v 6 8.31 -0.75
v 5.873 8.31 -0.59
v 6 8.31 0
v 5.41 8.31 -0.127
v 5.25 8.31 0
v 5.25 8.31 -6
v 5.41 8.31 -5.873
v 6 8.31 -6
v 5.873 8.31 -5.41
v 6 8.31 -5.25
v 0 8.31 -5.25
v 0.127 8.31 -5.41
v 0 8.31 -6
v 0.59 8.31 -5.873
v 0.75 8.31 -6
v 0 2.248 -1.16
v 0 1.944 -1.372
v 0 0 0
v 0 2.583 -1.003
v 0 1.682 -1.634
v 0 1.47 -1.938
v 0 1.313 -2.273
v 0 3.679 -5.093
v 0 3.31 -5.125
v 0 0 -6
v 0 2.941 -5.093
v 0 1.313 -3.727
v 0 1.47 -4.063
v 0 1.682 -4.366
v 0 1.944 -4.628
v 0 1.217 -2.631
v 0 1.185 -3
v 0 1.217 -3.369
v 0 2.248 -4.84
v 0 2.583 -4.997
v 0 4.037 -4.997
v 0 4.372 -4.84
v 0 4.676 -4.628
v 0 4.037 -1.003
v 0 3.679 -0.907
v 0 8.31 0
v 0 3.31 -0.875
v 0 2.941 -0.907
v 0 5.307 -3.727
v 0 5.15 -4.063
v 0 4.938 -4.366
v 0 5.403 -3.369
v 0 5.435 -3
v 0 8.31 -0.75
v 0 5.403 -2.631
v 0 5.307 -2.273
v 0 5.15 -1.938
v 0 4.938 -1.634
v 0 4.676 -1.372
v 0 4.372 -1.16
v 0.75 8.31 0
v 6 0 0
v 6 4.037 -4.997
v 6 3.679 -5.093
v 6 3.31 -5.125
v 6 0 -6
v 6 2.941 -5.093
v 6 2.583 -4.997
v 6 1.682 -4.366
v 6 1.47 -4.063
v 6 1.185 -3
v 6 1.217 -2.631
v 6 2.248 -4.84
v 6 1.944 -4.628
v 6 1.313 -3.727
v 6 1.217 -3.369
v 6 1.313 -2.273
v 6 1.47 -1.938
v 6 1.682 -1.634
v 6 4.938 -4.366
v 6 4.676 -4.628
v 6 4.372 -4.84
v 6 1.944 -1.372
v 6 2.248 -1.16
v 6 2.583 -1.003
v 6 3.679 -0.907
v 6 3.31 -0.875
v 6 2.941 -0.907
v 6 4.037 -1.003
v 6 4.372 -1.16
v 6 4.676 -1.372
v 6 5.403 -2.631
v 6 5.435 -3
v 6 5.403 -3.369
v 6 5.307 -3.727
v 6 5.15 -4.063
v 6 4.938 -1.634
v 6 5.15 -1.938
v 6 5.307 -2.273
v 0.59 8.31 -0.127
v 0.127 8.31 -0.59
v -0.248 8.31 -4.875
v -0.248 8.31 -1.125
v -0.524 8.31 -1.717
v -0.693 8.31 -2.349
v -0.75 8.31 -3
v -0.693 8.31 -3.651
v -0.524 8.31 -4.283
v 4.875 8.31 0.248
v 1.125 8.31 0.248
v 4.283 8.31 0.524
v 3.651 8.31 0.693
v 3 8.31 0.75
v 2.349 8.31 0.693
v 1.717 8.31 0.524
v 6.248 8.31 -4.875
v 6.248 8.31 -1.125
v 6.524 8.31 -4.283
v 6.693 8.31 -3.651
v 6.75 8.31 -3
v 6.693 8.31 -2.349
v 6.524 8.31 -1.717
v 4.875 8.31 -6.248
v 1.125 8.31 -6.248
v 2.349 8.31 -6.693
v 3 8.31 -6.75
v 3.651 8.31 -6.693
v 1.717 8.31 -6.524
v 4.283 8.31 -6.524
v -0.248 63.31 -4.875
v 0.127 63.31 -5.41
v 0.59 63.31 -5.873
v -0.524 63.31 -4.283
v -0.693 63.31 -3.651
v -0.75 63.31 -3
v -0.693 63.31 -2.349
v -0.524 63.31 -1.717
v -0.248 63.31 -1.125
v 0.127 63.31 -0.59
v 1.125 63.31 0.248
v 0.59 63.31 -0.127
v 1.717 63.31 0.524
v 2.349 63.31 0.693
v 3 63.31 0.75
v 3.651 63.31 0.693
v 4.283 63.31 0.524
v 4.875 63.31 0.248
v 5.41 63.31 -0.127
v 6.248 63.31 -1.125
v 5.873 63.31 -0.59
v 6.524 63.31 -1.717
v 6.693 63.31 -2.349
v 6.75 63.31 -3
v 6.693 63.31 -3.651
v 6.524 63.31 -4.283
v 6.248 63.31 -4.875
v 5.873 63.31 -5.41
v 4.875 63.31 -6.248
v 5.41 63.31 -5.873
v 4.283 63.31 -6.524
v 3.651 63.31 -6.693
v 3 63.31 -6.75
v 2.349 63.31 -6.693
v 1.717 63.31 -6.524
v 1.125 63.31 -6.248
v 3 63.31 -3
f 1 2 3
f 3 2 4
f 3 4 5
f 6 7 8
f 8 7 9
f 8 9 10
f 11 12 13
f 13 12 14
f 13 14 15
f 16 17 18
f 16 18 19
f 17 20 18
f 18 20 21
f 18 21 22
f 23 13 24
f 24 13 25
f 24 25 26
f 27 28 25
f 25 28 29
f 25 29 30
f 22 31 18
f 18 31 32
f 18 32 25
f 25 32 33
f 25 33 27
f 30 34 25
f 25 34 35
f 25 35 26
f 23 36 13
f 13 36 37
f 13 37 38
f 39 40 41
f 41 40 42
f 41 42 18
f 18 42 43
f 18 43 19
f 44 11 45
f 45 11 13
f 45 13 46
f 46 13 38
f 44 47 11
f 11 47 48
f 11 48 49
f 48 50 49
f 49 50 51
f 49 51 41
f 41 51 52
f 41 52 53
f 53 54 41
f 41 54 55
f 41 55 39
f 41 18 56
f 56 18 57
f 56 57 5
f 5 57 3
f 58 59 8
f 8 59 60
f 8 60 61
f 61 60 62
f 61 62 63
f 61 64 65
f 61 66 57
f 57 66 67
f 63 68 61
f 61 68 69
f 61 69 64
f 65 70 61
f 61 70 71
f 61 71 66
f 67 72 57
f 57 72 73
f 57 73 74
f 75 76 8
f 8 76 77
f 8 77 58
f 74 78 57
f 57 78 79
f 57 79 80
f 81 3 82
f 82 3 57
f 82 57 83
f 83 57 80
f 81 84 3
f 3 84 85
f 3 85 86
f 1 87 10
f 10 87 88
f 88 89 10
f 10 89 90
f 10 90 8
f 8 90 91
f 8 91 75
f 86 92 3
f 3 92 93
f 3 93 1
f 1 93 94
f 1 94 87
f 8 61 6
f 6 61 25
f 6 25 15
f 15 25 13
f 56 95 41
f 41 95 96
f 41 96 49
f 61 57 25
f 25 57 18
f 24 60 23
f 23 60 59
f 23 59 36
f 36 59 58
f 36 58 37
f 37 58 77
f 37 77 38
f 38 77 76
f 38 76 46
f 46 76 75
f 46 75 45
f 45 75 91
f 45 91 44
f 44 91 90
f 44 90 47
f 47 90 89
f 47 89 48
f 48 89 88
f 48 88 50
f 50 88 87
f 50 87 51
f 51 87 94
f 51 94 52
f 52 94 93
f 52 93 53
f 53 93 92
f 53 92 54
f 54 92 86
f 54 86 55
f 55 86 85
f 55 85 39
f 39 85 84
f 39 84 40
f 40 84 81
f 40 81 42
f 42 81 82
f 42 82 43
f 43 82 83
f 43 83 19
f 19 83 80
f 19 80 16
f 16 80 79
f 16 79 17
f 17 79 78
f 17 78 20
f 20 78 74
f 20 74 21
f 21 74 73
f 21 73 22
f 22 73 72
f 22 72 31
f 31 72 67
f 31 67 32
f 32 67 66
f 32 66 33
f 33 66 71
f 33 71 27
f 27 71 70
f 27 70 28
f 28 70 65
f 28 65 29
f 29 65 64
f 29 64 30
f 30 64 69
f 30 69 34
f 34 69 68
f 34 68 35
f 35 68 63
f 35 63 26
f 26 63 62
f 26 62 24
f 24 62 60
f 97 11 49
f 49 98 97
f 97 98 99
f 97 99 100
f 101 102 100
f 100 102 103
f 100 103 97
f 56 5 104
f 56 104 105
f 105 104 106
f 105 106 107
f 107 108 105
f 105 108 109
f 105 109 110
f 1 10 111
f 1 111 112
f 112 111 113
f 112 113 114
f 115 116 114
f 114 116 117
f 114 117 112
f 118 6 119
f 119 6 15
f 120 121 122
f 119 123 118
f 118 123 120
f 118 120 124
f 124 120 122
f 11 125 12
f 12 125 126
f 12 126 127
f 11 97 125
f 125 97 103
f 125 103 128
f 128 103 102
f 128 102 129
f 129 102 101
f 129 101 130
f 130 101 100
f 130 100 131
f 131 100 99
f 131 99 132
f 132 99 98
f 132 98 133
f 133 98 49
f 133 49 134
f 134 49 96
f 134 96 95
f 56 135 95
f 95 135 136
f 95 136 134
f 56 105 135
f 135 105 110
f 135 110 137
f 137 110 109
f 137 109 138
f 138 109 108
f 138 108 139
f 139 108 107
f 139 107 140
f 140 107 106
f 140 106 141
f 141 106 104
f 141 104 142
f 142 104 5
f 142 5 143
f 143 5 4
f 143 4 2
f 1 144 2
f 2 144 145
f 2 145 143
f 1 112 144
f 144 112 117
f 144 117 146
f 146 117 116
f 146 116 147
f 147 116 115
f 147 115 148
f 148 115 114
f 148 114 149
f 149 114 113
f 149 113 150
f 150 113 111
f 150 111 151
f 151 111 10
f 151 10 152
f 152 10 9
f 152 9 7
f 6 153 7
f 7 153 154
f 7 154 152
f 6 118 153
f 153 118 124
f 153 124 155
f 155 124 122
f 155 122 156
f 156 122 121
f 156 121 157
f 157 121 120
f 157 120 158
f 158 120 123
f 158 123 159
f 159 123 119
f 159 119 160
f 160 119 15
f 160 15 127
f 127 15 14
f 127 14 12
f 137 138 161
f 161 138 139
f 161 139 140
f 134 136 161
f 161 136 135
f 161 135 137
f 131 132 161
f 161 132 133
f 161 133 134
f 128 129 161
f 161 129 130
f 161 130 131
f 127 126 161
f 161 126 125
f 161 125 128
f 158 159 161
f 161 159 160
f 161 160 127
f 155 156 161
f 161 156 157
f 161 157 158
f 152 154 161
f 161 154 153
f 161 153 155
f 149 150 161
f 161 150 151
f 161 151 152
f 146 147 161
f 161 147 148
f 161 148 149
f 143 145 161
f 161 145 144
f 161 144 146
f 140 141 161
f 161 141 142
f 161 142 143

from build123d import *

# Parameters (mm, degrees)
SKETCH1_W           = 6
SKETCH1_H           = 6
BOSS_EXTRUDE1_DEPTH = 8.31
SKETCH2_R           = 2.125
CUT_EXTRUDE1_DEPTH  = 10
SKETCH3_R           = 3.75
BOSS_EXTRUDE2_DEPTH = 55


with BuildPart() as part:
    # Sketch1 → Boss-Extrude1 (new body)
    with BuildSketch(Plane(origin=(0, 0, 0), x_dir=(1, 0, 0), z_dir=(0, 1, 0))):
        with Locations((3, 3)):
            Rectangle(SKETCH1_W, SKETCH1_H)
    extrude(amount=BOSS_EXTRUDE1_DEPTH)

    # Sketch2 → Cut-Extrude1 (cut)
    with BuildSketch(Plane(origin=(6, 0, 0), x_dir=(0, 0, -1), z_dir=(1, 0, 0))):
        with Locations((3, 3.31)):
            Circle(SKETCH2_R)
    extrude(amount=-CUT_EXTRUDE1_DEPTH, mode=Mode.SUBTRACT)

    # Sketch3 → Boss-Extrude2 (add)
    with BuildSketch(Plane(origin=(0, 8.31, 0), x_dir=(1, 0, 0), z_dir=(0, 1, 0))):
        with Locations((3, 3)):
            Circle(SKETCH3_R)
    extrude(amount=BOSS_EXTRUDE2_DEPTH)


solid = part.part
